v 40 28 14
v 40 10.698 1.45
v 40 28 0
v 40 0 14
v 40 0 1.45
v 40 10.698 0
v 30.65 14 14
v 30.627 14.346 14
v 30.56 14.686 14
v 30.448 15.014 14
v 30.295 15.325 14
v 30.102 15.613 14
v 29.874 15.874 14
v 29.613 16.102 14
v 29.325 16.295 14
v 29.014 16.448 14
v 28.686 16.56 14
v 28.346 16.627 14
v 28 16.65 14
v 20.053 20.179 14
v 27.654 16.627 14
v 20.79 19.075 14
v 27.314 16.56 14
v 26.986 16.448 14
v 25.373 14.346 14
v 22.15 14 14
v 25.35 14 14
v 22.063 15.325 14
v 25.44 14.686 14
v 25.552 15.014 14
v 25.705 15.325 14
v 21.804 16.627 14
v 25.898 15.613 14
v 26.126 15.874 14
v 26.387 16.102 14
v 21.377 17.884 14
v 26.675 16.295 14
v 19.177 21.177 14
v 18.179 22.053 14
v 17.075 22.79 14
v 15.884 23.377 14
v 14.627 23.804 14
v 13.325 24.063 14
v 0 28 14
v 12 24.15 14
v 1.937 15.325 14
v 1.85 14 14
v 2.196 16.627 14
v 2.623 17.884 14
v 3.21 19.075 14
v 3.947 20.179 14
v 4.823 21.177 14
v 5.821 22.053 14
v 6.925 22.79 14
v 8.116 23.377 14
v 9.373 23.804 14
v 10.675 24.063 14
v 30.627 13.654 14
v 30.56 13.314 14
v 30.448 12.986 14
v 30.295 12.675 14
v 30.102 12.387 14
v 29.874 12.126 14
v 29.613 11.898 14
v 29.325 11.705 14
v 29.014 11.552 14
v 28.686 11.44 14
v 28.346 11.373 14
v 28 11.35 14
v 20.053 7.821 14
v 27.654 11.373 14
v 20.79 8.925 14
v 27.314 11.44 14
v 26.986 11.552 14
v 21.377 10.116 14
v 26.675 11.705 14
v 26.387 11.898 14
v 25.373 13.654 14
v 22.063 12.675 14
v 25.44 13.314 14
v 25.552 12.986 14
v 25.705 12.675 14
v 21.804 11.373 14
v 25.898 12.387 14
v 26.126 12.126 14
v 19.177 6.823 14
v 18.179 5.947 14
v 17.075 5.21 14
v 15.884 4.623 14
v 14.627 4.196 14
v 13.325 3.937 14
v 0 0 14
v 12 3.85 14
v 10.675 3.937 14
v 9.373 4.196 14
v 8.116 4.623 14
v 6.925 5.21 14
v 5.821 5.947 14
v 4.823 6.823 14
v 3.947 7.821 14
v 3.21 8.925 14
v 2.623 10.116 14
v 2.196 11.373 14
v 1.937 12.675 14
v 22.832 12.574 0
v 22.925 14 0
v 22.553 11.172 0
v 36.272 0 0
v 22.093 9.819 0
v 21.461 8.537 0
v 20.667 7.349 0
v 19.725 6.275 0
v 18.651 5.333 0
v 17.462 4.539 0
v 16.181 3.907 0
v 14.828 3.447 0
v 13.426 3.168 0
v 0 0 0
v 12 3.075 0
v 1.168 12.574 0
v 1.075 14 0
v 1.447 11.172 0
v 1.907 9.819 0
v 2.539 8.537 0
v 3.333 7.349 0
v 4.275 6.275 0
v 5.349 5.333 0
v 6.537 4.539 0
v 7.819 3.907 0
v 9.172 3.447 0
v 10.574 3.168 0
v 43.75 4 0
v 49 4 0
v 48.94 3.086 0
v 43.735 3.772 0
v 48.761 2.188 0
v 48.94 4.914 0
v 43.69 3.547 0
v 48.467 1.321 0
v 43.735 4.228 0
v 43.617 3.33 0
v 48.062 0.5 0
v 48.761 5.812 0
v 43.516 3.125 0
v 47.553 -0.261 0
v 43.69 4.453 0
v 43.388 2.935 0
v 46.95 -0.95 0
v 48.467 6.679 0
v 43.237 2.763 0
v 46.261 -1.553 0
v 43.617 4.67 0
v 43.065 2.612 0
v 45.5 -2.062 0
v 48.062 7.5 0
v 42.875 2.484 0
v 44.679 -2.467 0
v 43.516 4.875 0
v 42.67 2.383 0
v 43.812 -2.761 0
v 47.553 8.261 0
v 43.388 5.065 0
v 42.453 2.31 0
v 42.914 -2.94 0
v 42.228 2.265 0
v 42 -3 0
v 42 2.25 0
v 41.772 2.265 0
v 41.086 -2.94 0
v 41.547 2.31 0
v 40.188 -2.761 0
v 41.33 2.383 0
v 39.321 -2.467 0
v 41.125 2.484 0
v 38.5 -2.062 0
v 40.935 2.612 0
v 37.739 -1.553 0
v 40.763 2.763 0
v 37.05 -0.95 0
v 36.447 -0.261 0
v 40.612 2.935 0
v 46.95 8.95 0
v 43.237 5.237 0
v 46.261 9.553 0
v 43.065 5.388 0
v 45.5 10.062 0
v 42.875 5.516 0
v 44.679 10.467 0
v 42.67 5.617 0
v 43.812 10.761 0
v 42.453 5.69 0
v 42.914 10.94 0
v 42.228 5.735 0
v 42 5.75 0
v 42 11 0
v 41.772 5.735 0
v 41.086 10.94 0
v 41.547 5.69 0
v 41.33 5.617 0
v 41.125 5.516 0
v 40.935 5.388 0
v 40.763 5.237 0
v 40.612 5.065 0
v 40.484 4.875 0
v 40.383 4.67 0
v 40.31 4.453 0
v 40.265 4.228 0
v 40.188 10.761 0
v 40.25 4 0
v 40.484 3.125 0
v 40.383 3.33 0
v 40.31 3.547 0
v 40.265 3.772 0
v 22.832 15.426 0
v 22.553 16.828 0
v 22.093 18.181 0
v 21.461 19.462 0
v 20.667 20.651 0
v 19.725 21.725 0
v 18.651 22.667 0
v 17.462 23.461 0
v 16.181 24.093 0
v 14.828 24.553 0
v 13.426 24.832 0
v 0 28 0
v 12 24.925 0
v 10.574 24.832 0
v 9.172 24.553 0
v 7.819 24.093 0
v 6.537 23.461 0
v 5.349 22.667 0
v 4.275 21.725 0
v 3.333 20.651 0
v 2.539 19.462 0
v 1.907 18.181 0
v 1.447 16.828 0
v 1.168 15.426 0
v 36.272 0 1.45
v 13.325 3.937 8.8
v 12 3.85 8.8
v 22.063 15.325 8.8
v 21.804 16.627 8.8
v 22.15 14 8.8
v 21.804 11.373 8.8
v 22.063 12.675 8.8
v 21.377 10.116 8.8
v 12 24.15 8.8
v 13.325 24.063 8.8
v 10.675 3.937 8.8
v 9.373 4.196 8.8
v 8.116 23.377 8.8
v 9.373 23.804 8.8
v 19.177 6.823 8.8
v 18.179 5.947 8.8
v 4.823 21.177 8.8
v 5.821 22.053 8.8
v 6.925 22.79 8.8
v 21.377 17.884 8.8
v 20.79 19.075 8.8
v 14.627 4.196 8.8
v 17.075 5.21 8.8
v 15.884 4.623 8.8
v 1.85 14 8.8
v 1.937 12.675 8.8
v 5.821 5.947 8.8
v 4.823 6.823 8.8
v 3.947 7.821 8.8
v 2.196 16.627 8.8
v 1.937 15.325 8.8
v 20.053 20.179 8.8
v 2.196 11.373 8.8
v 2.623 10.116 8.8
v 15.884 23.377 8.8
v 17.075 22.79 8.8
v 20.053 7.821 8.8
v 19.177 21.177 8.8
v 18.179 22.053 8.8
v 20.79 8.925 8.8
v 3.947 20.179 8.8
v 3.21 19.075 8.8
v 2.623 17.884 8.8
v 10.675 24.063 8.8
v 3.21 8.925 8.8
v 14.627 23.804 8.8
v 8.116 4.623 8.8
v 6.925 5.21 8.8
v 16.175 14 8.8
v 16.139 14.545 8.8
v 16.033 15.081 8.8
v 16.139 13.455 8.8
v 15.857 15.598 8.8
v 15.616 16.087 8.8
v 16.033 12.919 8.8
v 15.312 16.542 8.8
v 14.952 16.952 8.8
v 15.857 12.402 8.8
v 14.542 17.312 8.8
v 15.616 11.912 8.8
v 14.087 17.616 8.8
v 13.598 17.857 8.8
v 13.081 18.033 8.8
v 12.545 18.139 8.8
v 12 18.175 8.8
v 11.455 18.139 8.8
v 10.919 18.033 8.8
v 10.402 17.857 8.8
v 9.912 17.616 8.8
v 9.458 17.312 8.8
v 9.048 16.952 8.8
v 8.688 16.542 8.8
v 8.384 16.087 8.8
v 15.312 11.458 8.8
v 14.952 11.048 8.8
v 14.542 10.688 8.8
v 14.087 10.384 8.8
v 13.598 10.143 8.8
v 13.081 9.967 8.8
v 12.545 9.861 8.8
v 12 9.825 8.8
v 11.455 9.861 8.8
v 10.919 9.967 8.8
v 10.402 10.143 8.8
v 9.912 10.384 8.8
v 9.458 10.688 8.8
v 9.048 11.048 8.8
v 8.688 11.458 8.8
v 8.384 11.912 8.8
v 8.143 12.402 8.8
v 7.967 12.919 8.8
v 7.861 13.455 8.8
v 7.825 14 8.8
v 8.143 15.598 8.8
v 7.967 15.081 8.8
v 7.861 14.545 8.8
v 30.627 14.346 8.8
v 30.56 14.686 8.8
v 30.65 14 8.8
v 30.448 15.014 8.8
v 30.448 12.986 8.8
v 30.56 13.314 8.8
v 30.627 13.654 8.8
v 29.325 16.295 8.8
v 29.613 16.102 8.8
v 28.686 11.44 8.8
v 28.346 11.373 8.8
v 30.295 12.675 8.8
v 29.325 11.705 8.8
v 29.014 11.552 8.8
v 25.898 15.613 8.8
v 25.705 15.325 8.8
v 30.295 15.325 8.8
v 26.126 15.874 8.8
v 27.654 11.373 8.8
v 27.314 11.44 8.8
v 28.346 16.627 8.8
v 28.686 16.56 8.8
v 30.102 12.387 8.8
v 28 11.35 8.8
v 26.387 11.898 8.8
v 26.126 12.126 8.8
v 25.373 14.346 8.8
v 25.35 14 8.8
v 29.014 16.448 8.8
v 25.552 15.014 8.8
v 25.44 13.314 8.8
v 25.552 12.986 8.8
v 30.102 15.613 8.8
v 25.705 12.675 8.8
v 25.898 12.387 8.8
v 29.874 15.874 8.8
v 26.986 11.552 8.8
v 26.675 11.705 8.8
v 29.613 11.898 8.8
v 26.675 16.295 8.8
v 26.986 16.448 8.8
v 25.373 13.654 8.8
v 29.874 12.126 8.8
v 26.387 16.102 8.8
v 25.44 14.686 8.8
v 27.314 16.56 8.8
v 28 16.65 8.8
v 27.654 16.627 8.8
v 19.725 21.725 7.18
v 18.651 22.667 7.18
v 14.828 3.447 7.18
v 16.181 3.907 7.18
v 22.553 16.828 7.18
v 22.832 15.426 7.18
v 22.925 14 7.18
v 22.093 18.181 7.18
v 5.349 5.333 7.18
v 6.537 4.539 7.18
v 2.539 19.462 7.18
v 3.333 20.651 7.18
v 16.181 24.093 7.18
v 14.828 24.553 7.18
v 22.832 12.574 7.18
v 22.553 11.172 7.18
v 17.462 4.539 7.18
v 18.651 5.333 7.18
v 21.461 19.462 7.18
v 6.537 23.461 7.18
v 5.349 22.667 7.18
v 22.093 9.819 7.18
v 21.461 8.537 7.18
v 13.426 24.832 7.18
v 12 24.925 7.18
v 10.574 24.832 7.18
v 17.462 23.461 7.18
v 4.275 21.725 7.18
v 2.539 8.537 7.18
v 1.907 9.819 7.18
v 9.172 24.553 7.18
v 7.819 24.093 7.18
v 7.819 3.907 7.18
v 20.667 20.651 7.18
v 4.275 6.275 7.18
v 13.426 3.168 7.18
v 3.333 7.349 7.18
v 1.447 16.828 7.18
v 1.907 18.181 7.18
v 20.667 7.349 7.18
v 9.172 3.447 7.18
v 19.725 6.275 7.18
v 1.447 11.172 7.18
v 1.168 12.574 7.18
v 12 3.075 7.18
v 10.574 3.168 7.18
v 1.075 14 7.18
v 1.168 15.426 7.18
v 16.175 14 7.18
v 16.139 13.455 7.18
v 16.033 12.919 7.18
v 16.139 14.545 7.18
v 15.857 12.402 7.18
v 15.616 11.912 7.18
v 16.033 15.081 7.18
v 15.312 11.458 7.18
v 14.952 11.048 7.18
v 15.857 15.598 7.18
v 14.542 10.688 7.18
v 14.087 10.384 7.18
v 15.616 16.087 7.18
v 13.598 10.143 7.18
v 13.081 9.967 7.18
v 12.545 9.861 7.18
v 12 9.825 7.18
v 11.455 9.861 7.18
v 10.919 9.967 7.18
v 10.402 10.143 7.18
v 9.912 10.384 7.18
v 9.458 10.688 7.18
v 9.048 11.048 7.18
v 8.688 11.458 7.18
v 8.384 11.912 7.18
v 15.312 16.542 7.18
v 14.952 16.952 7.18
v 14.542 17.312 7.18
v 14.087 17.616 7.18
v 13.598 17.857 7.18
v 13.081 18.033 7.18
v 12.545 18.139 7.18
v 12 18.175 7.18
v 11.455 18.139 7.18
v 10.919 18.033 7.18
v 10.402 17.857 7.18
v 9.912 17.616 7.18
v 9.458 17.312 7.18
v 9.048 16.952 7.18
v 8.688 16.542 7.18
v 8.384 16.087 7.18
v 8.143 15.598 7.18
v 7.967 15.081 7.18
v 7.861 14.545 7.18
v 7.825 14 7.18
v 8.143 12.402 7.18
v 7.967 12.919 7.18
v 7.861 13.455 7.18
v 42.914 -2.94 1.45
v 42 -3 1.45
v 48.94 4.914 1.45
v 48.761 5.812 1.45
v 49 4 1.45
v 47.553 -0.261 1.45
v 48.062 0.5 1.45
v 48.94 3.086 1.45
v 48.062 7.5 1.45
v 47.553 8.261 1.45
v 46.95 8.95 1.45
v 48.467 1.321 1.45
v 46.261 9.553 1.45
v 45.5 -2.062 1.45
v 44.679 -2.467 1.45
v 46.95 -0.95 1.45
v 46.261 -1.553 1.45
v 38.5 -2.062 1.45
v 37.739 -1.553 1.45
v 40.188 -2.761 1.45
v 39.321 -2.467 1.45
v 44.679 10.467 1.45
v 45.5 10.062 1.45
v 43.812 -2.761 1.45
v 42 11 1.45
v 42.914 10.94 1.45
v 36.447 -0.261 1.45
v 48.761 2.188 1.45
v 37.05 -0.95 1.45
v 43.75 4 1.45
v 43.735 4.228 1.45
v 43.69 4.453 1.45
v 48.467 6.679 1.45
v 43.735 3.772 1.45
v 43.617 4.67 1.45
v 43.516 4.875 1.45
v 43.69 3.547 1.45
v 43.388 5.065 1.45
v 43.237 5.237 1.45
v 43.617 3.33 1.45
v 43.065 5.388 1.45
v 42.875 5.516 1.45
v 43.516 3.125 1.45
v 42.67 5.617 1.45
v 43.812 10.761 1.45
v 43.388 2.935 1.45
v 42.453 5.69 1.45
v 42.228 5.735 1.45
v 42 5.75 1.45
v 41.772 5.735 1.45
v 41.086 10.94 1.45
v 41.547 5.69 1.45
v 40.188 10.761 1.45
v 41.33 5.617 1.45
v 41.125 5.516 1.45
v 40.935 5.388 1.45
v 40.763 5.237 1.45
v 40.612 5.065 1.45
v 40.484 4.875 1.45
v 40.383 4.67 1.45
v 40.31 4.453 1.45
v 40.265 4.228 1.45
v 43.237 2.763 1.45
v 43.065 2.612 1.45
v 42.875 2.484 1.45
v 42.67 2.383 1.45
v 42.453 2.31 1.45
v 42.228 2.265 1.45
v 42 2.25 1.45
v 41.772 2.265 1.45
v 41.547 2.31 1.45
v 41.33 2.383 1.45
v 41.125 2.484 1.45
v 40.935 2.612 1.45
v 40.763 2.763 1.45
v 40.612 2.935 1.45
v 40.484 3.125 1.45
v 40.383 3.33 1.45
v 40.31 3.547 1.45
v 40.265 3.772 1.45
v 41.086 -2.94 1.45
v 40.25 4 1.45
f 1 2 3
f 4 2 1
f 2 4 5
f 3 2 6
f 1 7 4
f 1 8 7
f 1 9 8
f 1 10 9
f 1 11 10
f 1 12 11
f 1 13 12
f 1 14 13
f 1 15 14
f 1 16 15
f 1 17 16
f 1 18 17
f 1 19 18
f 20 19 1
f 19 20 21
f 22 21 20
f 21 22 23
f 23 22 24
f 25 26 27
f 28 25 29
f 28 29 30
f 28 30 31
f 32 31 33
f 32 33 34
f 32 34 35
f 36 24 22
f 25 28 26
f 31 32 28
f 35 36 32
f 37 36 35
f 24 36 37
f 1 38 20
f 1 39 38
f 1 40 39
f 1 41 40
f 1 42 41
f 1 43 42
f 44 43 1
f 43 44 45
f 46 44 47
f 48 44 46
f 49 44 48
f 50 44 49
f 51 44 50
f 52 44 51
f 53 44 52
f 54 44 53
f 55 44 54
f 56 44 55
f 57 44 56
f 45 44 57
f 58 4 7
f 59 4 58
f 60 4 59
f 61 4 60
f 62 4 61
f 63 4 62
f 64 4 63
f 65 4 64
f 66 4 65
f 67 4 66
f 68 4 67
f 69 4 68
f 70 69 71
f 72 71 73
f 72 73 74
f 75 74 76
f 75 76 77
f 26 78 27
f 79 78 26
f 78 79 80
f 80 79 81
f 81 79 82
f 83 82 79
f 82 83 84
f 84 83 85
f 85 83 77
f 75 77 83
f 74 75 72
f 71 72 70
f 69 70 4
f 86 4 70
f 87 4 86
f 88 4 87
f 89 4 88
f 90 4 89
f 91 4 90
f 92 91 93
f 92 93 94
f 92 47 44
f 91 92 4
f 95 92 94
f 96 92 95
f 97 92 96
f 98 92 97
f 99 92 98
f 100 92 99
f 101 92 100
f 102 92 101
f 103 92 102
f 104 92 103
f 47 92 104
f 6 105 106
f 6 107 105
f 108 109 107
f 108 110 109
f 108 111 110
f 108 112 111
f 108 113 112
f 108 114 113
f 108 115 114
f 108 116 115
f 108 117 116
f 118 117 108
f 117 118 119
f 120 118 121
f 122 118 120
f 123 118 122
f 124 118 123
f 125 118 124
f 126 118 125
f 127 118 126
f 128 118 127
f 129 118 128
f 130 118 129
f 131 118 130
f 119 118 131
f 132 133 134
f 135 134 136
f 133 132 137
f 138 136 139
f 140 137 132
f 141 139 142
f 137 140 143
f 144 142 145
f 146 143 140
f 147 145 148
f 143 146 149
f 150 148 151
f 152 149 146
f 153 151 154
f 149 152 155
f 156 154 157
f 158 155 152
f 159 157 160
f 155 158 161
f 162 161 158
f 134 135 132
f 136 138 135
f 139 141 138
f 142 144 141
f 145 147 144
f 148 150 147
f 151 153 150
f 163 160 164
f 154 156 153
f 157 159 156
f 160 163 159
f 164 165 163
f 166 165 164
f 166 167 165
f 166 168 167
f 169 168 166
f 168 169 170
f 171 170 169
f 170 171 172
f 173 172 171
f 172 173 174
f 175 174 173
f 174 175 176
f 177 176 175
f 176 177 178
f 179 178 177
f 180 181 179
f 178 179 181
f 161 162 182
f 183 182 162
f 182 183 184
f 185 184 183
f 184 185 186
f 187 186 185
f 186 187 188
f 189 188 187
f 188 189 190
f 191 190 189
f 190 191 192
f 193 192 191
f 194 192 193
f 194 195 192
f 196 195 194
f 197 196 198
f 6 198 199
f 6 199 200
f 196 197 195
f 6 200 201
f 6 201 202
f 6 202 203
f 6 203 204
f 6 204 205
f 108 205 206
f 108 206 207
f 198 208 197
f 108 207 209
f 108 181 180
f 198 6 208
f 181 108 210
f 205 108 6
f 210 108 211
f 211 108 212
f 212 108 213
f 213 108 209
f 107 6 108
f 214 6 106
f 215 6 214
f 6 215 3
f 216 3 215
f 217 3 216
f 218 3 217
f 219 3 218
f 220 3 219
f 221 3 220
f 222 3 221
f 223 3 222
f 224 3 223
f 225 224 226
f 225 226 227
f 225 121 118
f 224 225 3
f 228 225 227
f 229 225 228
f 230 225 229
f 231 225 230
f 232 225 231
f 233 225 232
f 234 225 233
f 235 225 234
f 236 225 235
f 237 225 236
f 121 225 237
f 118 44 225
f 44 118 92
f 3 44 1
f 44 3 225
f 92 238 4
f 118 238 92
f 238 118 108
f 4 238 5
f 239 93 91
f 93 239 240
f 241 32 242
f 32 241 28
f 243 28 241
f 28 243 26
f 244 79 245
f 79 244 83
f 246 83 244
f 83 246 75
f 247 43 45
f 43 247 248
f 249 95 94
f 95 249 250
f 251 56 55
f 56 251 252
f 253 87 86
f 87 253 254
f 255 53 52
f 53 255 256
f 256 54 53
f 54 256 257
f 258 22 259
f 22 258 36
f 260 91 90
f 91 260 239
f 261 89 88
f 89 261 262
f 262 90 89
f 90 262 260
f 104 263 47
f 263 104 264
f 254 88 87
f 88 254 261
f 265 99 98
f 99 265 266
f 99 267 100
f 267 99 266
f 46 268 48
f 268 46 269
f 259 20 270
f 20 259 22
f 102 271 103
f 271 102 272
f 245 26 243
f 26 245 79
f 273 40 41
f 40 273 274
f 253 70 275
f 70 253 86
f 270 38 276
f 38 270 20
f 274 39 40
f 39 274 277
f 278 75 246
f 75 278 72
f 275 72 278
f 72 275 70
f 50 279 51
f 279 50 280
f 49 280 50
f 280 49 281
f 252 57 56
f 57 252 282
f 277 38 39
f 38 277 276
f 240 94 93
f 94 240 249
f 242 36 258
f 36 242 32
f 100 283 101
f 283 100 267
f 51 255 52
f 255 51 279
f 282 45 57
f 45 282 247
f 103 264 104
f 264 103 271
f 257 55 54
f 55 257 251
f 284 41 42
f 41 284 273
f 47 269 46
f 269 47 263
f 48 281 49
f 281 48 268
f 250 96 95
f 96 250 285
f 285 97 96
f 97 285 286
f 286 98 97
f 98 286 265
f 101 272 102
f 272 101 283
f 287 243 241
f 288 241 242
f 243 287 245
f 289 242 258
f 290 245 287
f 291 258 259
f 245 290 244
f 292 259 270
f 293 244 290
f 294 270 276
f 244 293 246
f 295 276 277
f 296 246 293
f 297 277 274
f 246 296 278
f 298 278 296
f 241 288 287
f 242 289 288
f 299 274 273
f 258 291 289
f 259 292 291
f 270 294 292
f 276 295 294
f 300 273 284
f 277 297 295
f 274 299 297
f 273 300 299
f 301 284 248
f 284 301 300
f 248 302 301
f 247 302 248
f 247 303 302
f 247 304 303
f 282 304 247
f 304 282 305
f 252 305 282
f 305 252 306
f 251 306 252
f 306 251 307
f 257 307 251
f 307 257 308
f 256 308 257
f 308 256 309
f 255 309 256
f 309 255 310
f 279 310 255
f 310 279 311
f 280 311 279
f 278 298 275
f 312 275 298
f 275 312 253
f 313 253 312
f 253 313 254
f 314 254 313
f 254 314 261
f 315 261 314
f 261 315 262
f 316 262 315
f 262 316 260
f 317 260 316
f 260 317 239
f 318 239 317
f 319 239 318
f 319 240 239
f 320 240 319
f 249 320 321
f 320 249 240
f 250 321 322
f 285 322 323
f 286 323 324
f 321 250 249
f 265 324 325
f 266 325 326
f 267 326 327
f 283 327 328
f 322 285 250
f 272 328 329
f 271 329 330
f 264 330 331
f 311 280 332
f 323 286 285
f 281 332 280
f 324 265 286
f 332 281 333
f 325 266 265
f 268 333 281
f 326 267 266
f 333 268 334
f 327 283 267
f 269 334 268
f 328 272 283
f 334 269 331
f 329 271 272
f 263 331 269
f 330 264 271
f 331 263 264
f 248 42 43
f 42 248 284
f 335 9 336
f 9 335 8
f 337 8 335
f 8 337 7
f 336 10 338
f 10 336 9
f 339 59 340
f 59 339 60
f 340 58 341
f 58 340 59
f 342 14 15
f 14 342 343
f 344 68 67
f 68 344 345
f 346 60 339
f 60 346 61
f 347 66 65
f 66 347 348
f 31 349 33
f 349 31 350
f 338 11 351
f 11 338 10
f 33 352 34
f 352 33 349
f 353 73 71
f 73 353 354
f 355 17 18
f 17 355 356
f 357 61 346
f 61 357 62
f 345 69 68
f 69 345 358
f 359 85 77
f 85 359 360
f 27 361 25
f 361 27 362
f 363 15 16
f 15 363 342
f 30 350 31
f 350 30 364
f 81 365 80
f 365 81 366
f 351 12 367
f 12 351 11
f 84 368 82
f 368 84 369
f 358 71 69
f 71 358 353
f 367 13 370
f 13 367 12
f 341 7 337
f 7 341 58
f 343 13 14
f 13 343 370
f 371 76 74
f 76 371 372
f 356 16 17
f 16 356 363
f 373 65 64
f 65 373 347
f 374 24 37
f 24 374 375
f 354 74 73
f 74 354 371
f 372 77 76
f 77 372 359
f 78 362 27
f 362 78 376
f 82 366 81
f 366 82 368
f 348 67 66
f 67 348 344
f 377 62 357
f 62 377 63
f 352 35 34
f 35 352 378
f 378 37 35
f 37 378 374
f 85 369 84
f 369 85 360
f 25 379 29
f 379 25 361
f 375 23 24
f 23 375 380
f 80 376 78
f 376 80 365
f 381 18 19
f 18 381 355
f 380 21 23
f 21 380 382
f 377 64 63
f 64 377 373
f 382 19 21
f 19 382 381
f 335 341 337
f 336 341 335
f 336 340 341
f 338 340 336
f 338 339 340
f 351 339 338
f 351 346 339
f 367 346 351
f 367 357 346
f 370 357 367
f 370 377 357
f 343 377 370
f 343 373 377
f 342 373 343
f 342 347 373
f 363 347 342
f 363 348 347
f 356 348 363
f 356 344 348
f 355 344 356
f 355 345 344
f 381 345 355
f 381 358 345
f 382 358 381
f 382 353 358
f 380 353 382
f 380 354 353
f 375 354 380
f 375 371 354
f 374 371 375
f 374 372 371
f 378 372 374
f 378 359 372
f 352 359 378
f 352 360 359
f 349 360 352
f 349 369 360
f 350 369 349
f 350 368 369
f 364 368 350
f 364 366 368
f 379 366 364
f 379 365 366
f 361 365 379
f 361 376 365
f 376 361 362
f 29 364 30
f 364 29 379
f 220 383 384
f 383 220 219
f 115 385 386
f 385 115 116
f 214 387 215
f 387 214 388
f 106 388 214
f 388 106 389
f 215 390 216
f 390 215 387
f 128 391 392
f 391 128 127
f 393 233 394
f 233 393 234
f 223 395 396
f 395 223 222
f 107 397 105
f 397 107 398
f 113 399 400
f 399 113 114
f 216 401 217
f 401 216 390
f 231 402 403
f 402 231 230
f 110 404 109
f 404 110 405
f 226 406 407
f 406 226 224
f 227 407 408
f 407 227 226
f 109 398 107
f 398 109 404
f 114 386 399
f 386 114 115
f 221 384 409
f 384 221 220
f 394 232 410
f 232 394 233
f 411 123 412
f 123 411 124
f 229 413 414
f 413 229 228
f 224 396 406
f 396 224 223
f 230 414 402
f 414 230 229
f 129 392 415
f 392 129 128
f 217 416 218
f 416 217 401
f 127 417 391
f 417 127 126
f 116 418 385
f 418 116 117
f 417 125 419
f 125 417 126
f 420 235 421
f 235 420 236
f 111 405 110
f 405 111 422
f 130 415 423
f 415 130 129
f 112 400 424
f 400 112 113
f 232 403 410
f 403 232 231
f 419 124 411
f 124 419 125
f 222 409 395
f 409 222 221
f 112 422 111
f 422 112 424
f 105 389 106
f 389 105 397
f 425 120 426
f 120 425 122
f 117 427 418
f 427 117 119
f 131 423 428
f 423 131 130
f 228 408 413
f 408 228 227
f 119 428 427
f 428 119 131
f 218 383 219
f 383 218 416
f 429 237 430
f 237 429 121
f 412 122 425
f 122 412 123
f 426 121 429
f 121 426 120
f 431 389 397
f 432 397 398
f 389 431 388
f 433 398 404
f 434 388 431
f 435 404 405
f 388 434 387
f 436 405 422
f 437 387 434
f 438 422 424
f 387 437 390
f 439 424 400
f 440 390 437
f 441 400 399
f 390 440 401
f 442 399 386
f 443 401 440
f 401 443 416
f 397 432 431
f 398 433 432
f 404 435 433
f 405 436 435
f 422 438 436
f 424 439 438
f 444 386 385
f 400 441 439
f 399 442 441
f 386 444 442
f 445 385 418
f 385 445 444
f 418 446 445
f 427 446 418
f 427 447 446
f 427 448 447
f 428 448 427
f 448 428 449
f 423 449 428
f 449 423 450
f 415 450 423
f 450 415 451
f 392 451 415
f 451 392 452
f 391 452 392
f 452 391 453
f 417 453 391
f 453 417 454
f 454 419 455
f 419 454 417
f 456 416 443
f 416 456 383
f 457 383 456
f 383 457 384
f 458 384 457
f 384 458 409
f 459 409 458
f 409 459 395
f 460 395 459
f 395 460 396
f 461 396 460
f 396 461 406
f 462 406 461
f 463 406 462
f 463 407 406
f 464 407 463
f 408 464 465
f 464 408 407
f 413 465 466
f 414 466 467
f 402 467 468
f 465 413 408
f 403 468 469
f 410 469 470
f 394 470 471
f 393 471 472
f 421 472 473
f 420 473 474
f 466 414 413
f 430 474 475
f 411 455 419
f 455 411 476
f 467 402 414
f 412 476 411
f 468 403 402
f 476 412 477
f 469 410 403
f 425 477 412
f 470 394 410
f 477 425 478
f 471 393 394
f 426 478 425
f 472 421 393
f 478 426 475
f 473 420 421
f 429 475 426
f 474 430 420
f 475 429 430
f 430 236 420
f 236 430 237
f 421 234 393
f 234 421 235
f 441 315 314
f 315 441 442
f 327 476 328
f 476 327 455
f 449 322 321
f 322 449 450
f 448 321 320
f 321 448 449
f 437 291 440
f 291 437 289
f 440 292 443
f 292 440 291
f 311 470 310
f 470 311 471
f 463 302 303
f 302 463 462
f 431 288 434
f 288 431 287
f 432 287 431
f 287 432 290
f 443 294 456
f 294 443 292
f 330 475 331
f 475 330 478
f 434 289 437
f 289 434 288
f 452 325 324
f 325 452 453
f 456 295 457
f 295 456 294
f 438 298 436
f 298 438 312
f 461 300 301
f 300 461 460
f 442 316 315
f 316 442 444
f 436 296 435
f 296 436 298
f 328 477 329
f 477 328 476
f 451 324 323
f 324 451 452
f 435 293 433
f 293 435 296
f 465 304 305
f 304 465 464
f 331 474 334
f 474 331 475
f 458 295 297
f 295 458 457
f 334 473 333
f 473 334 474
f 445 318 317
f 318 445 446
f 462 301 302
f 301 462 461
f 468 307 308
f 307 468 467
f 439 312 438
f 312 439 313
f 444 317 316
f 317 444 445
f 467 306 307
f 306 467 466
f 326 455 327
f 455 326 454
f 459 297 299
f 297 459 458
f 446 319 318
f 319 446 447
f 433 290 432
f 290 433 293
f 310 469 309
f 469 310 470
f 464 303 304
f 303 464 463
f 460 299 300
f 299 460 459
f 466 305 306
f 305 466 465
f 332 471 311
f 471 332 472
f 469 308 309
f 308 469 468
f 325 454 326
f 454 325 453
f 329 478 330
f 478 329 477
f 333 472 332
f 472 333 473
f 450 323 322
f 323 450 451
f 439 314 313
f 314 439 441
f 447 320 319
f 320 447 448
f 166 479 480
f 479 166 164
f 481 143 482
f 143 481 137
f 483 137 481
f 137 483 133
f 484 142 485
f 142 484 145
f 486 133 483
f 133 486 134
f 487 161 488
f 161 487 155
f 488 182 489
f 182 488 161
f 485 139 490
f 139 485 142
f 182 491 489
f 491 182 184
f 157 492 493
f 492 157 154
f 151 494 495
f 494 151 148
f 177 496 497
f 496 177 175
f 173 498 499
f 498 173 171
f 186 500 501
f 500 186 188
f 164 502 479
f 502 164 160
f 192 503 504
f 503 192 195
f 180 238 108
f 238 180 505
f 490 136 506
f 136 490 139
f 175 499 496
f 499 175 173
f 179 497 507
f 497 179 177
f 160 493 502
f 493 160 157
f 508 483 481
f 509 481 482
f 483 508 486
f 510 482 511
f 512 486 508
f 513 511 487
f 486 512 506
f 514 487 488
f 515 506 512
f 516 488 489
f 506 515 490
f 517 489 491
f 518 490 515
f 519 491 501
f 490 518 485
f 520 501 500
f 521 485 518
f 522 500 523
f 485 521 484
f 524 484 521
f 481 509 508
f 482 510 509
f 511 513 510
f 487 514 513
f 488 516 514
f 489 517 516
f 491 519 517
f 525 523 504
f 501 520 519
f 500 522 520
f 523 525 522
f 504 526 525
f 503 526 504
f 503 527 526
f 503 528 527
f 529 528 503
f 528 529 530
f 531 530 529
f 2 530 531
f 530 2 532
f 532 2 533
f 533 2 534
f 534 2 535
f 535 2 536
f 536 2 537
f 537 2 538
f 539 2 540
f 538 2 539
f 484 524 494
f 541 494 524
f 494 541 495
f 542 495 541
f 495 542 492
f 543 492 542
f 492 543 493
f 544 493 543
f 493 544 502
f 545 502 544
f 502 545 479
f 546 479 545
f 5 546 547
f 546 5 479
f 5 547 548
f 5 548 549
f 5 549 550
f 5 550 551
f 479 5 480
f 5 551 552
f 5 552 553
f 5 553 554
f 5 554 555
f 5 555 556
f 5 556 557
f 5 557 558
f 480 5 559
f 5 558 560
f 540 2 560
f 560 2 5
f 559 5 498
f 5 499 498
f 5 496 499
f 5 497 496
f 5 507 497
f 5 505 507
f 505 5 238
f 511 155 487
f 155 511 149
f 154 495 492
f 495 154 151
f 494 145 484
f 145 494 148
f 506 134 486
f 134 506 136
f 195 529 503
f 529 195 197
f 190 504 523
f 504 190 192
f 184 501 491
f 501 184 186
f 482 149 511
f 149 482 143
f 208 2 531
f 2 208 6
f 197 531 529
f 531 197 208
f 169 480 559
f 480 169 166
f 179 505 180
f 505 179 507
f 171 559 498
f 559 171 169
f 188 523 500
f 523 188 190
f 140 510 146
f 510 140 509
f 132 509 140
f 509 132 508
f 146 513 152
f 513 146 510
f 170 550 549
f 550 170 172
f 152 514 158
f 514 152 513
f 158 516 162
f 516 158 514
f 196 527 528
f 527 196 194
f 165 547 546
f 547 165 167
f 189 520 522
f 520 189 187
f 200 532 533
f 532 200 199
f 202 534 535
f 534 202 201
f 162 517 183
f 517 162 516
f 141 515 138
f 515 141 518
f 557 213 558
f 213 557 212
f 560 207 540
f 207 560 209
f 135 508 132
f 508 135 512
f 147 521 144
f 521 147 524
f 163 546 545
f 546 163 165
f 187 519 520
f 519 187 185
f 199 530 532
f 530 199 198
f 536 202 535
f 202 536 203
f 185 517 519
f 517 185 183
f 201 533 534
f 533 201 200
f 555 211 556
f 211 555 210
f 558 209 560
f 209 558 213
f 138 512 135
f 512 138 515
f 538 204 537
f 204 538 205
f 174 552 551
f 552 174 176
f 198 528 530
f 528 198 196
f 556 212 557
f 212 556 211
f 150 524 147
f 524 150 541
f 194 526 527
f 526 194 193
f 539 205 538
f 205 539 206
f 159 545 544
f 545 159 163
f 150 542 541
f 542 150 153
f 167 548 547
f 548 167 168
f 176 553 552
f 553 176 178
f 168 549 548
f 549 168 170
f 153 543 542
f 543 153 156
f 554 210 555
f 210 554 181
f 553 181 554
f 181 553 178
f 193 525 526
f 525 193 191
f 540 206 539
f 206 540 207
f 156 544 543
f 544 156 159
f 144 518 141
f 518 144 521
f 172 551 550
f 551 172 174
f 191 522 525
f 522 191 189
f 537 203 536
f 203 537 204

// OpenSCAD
// file: parameters.scad
// =============================================================================
// Gen-T Triple-gap sandwich AFPM — WOUND-AWARE (HARD GATE)
// RotorA | Stator1 | Mid dual-face rotor | Stator2 | RotorB
// Magnets: outer 4+4 Ø20, mid 4+4 Ø20; Ø5 Halbach 12+12 outer + 12+12 mid
// =============================================================================

wire_awg            = 26;
wire_od             = 0.45;
turns               = 100;      // 18 pancakes × 100 t ≈ 180 m @ mean 0.10 m
fill                = 0.70;
layers_per_face     = 2;
wind_build_axial    = layers_per_face * wire_od * fill;   // 0.63
wind_build_radial   = 2.5 * wire_od * fill;               // 0.788

coil_id_r           = 24.0;
coil_od_r           = 54.0;
span_deg            = 34.0;     // 9 stations × 40°
former_web          = 2.4;
flange_t            = 0.85;
wall                = 1.2;
slot_w              = 2.4;
mount_hole          = 3.5;
tab_len             = 7.0;

former_bare_h       = former_web + 2 * flange_t;            // 4.1
coil_envelope_h     = former_bare_h + 2 * wind_build_axial; // 5.36

// Each gap: magnet ↔ wound ≥ 0.80
run_clear           = 0.82;
gap_spacer_h        = run_clear + wind_build_axial;         // 1.45
// Outer gap m2m (outer rotor ↔ mid rotor face through one stator):
m2m_outer           = coil_envelope_h + 2 * run_clear;      // 7.00
// Two identical outer gaps + mid carrier thickness between coil planes

coil_stations       = 9;        // per stator; ×2 = 18
bay_r_in            = coil_id_r - 2.0 - wind_build_radial;
bay_r_out           = coil_od_r + 2.0 + wind_build_radial;
bay_span            = span_deg + 4.0;
bay_offset          = 2.0;
bay_depth           = former_bare_h + wind_build_axial;     // seat bare+back wind
stator_back_web     = 2.2;
stator_thick        = bay_depth + stator_back_web;          // ~6.93
stator_od           = 152.0;
shaft_clear_stator  = 40.0;
coil_mount_r        = 30.0;

// Outer rotors: 4×Ø20 + 12×Ø5 each
large_pocket_d      = 20.3;
small_pocket_d      = 5.3;
pocket_h            = 5.2;
outer_large_n       = 4;
mid_large_n_face    = 4;        // 4 per face = 8 mid
R_large             = 50.0;
R_small_inner       = 38.0;
R_small_mid         = 50.0;
R_small_outer       = 62.0;
carrier_od          = 148.0;
outer_carrier_thick = 7.5;
mid_carrier_thick   = 12.0;     // dual face 5.2+1.6+5.2
hub_h               = 10.0;
hub_od              = 30.0;

shaft_bore          = 8.35;
bearing_d           = 21.85;
bearing_h           = 7.2;
m3_clear            = 3.5;
bolt_r_inner        = 36.0;
bolt_n_inner        = 6;
flange_bolt_r       = 72.0;
flange_bolt_n       = 6;
brace_r             = 68.0;
brace_d             = 4.3;
brace_n             = 4;

spacer_pad_od       = 14.0;
spacer_pad_id       = m3_clear;
endbell_od          = 152.0;
endbell_thick       = 8.0;
endbell_shaft_clear = 10.0;

$fn = 64;
// main file
include <parameters.scad>;
$fn = 48;
block_w = 40; block_d = 28; block_h = 14;
difference() {
    cube([block_w, block_d, block_h]);
    translate([12, block_d/2, block_h - pocket_h])
        cylinder(d=large_pocket_d, h=pocket_h + 0.2);
    translate([28, block_d/2, block_h - pocket_h])
        cylinder(d=small_pocket_d, h=pocket_h + 0.2);
    translate([12, block_d/2, -0.02])
        cylinder(d=bearing_d, h=bearing_h);
    translate([12, block_d/2, -0.1])
        cylinder(d=shaft_bore, h=block_h + 1);
}
translate([block_w + 2, 4, 0])
    difference() {
        cylinder(d=spacer_pad_od, h=gap_spacer_h);
        translate([0, 0, -0.1]) cylinder(d=spacer_pad_id, h=gap_spacer_h + 0.2);
    }
